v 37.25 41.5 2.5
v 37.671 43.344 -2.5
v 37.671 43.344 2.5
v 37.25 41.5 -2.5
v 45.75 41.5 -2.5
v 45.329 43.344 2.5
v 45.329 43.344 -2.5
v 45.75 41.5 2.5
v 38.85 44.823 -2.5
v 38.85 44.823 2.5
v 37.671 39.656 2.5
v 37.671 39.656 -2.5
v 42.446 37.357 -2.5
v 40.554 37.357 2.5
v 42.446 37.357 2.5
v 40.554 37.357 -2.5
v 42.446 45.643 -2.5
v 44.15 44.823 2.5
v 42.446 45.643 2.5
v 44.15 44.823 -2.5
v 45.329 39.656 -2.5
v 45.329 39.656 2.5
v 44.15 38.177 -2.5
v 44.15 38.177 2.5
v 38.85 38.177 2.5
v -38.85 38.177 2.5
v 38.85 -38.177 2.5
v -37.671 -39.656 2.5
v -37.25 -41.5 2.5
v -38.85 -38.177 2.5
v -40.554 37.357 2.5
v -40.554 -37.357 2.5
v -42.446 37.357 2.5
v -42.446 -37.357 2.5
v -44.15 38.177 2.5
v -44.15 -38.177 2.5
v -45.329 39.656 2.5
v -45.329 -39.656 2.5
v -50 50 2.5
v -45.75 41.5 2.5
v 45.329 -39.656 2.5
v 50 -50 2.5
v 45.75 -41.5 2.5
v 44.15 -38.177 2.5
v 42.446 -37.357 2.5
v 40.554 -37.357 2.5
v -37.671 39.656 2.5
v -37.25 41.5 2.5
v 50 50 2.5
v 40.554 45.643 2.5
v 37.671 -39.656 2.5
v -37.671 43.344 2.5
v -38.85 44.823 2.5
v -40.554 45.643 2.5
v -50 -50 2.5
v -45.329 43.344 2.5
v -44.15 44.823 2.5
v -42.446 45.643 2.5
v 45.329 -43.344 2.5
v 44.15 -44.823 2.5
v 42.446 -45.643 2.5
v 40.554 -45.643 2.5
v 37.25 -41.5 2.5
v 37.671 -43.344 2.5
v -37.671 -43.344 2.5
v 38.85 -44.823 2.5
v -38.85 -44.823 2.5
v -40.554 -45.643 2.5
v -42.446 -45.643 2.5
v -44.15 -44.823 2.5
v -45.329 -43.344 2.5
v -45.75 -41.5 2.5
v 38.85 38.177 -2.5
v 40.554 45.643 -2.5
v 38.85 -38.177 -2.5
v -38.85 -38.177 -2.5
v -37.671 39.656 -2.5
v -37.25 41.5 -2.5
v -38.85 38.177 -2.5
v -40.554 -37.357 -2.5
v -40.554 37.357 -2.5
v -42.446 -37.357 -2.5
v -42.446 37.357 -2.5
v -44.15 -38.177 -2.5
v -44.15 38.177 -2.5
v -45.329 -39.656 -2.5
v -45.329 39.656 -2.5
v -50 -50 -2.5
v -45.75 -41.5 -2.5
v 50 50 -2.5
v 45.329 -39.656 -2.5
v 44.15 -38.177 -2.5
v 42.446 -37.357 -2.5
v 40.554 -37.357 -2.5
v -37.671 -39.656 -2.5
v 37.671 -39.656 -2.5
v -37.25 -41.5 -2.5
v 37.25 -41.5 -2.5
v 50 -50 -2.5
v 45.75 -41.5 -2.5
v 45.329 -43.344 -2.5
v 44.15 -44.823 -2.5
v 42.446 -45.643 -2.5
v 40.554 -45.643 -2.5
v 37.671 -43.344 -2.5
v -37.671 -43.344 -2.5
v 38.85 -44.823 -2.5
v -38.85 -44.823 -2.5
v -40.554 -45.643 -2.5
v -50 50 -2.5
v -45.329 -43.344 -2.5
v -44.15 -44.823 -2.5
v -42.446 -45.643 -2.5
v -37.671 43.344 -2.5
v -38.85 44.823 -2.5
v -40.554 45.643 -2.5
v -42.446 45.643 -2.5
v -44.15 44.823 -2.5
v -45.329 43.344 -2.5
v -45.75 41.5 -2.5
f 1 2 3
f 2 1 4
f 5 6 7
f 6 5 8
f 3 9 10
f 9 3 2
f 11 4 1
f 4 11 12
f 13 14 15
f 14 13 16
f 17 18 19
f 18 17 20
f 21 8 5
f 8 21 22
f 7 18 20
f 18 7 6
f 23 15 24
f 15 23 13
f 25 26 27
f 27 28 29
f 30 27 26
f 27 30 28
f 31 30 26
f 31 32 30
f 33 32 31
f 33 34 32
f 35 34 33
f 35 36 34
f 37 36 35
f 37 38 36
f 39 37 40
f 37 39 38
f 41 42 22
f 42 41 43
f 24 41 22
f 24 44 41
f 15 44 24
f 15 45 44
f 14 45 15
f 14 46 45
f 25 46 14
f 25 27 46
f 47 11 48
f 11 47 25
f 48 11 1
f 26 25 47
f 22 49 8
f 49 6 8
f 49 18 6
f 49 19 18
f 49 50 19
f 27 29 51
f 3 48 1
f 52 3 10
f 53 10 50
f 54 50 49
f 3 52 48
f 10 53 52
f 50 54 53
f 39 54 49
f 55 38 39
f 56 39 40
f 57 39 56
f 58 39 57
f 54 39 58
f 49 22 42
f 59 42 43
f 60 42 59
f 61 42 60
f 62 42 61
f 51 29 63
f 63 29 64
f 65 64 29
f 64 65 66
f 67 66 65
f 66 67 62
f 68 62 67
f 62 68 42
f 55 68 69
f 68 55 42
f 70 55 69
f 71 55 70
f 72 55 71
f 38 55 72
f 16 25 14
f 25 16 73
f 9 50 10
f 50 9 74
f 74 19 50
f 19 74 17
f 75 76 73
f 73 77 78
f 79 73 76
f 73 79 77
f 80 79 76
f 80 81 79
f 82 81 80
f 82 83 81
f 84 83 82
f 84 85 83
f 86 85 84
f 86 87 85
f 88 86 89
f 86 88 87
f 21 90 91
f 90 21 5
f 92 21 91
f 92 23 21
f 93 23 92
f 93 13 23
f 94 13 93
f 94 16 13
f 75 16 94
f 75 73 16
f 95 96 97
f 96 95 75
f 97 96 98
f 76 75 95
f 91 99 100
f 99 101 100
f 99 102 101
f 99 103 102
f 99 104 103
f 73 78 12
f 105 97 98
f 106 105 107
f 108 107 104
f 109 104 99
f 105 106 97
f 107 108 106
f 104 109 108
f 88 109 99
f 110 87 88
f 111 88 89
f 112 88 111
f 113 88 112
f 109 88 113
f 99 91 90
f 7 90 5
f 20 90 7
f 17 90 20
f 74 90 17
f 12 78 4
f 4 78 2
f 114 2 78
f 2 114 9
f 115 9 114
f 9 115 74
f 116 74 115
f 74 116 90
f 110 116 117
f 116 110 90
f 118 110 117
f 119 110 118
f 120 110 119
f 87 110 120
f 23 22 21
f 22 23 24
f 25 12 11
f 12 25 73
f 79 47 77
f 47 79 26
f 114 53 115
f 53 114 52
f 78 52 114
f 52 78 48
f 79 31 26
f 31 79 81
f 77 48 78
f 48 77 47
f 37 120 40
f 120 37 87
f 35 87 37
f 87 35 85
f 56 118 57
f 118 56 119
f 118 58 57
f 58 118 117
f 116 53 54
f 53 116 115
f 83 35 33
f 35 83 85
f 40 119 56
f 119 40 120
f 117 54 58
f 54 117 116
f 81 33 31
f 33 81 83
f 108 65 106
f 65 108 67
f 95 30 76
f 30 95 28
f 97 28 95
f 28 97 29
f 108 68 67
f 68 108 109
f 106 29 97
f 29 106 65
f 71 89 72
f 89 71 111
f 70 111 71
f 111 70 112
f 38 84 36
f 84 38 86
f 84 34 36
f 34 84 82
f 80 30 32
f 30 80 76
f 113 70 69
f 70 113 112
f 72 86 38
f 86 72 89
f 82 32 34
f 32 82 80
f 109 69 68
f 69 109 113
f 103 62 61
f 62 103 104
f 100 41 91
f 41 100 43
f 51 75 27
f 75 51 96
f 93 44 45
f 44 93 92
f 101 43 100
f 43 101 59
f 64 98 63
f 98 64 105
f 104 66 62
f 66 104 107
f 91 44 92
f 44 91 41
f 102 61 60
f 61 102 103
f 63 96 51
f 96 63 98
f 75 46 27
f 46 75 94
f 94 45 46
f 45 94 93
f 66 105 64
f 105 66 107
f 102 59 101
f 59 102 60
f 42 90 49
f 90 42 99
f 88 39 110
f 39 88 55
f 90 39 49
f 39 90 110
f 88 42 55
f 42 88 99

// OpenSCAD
// Generated by SolidPython 1.1.3 on 2023-10-16 18:04:48


difference() {
	cube(center = true, size = [100, 100, 5]);
	union() {
		translate(v = [41.5000000000, 41.5000000000]) {
			cylinder(center = true, h = 5, r = 4.2500000000);
		}
		translate(v = [-41.5000000000, 41.5000000000]) {
			cylinder(center = true, h = 5, r = 4.2500000000);
		}
		translate(v = [-41.5000000000, -41.5000000000]) {
			cylinder(center = true, h = 5, r = 4.2500000000);
		}
		translate(v = [41.5000000000, -41.5000000000]) {
			cylinder(center = true, h = 5, r = 4.2500000000);
		}
	}
}
/***********************************************
*********      SolidPython code:      **********
************************************************
 
import solid
import numbers
import pudb
from solid.utils import *
import viewscad
import subprocess
import os
import os.path as osp
import math
import sys

chamfer_extrude=solid.import_scad("./chamfer_extrude.scad")
chamfer_extrude=chamfer_extrude.chamfer_extrude
r = viewscad.Renderer(width=800, height=800)

def debug(model,f_name,path="/home/ts/code/projects/mfd/designs/debug"):
    solid.scad_render_to_file(model,osp.join(path,f_name)+".scad")
#generate position list of wells using offset from center
wells_pos_from_center_4 = lambda offset: [[-offset,offset],
                                        [offset, offset],
                                        [-offset, -offset],
                                        [offset, -offset]]
#wells_pos_from_center_2 = lambda offset: [[0,offset],
#                                        [0, -offset]]
wells_pos_from_center_2 = lambda offset: [[offset,0],
                                        [-offset,0]]

def make_well(dims,shape=None,height=None,dxf=False):
    def circle_cylinder():
        if dxf or (height is None):
            well = solid.circle(r=dims, segments=64)
        else:
            well = solid.cylinder(r=dims, h=height, segments=64, center = True)
        return well
    if dims is None:
        sys.exit("radius needs to be a number")
    if isinstance(dims, numbers.Number):
        well =circle_cylinder()
    elif len(dims)==1:
        if isinstance(dims[1], numbers.Number):
            well =circle_cylinder()
        else:
            sys.exit("radius needs to be a number")
    elif len(dims)==2:
        well = solid.square(dims,center = True)
    elif len(dims)==3:
        well = solid.cube(dims, center = True)
    return well

def wells_top_bottom(center_gap,device_dims=None,shape=None,height=None, positions = None, dxf = False,well_shape=None):
    if well_shape == None:
        well_shape = make_well(device_dims,shape=shape,height=height,dxf=dxf)
    wells = []
    if positions is None:
        offset = radius+radius/2.0
        positions = wells_pos_from_center_2(offset)
    if dxf or (height is None):
        height = 0
    for position in positions:
        if dxf:
            wells.append(solid.translate([position[0],position[1]])(well_shape))
        else:
            wells.append(solid.translate([position[0],position[1],height/2.0])(well_shape))
    return  union()(*wells)

#place wells in four corners 
def four_corner(radius,height=None, positions = None, dxf = False):
    #if well pos not specified set
    #to equally spaced by half radius
    if positions is None:
        offset = radius+radius/2.0
        positions = wells_pos_from_center_4(offset)
    if dxf or (height is None):
        height = 0
    #make wells at positions with specified radius and height
    wells = []
    for position in positions:
        #make circle if making dxf
        if dxf:
            well_shape = solid.circle(r=radius, segments=64)
            well_shape = solid.translate([position[0],position[1]])(well_shape)
        #if stl make cylinder
        else:
            well_shape = solid.cylinder(r=radius, h=height, segments=64, center = True)
            well_shape = solid.translate([position[0],position[1],height/2.0])(well_shape)
        wells.append(well_shape)
    return  union()(*wells)

#generate channels 
def make_channels(length,width,height=0,num_chans=1,max_chans=None,spacing=None, dxf = False,
                  rotate_channels=False):
    if dxf or (height is None):
        height = 0
    #if channel gap not defined, is equal to
    if spacing is None: spacing = width
    #calculate number of channels if fitting max num within given width
    if not max_chans is None:
        import math
        num_chans = math.floor((max_chans-spacing)/(width+spacing))
    #get total width of channel section  
    total_width = (width*num_chans)+(spacing*(num_chans-1))

    #make template channel
    #if rotate_channels: width, length = length, width
    if dxf:
        channel_t = solid.square([length,width],center = True)
    else:
        channel_t = solid.cube([length,width,height], center = True)

    #if number channels is even, offset the first channel to center its gap
    if num_chans % 2 == 0: centering = -(width/2.0+spacing/2.0)
    else: centering = 0
    #move template channel up to align bottom at z = 0 
    #and offset center if necessary
    if dxf:
        channel_t = solid.translate([0,centering])(channel_t)
    else:
        channel_t = solid.translate([0,centering,height/2.0])(channel_t)

    #if rotate_channels: length,width = width,length
    #start making the channels
    channels = []
    for i in range(num_chans):
        #if i=0 there is no translation
        #if i=1, we make the first channel adjacent to second
        direction = i

        #if i>=1, we add channels alternating left and right
        if i >= 1:
            direction = -(i/2.0)
            if i % 2 == 1: direction = (-direction)+0.5
                
        #make channel at right position and add it to channel list
        translation_coords = [0,direction*(width+spacing)]
        #if rotate_channels: translation_coords = [direction*(width+spacing),0]
        if dxf:
            channel = solid.translate(translation_coords)(channel_t)
        else:
            channel = solid.translate([*translation_coords,0])(channel_t)
        channels.append(channel)
    
    #group all channels as one object
    channels = union()(*channels)
    #compute the x,y,z dimensions in order to pass as arguments 
    #for construction of other parts of device (such as the chambers)
    measurements = {'x':(length/2.0,-length/2.0),
                    'y':(total_width/2.0,-total_width/2.0)}
    if not dxf:
        measurements['z'] = (height,0)
    if rotate_channels:
        channels = solid.rotate(90)(channels)
        measurements['x'],measurements['y']=measurements['y'],measurements['x']
    return channels,measurements

def make_chambers(msrs,height=None,extra=0,len_until=None,width=None, dxf = False):
    #computes x,y,z length
    total = lambda x : abs(x[0]) + abs(x[1])
    
    #if specific height if specified
    #otherwise use same height as channels
    if dxf:
        pass
    elif not height is None:
        msrs['z'] = (height,0)
    else:
        msrs['z'] = (0,0)
        
    #make copy of measurements from channels to modify chamber dimensions 
    #and add length to chambers as specified
    chamber_dims = msrs.copy()
    #calculate length of chamber to reach specified offset
    if not len_until is None:
        chamber_len = len_until-(msrs['x'][0])
    #or add specified length to channel length (if not specified, adds 0)
    else:
        chamber_len = msrs['x'][0]+extra
    #set the chamber length based 
    chamber_dims['x'] = (chamber_len/2.0,-(chamber_len/2.0))
    #compute final dimensions of chamber
    if not width is None:
        chamber_dims['y'] = (width/2.0,-width/2.0)
    chamber_dims = [total(size) for size in chamber_dims.values()]
        
    #calculate chamber translation offset to place adjacent to channels
    chamber_trslt = msrs['x'][0]+(chamber_len/2.0)
    #compute chamber translation coordinates to align with channels
    #x = 1 moves chamber above channels
    #x = -1 moves chamber below channels
    if dxf:
        trslt = lambda x : [x*(chamber_trslt),0]
    else:
        trslt = lambda x : [x*(chamber_trslt),0,msrs['z'][0]/2.0]
    
    #function to make chamber at top or at bottom 
    if dxf:
        move = lambda x : solid.translate(trslt(x))(solid.square(chamber_dims, center = True) )
    else:
        move = lambda x : solid.translate(trslt(x))(solid.cube(chamber_dims,center = True))
    #make top and bottom chambers and return them as grouped
    top = move(1)
    bottom = move(-1)
    #chambers=solid.rotate(90)(solid.union()(top,bottom))
    chambers=(solid.union()(top,bottom))

    return chambers

#create alignment features 
def alignment_features(unit,dims,grid_size, mask_size = None, alignment = "hollow", units_from_center = (2.5,2.5), corner_len=None):
    width = grid_size[0]*dims[0]
    length = grid_size[1]*dims[1]
    if mask_size is None and corner_len is None:
        corner_len = (dims[0] + dims[1]) /2 / 8
    corner = lambda thickness_div : solid.union()( solid.square([corner_len,corner_len/thickness_div],center=False), solid.square([corner_len/thickness_div,corner_len],center=False) )
    
    def make_full(thickness_div):
        thickness = corner_len/thickness_div
        tr = solid.translate([0, 0, 0 ])(solid.rotate(180)(corner(thickness_div)))
        tr = solid.translate([thickness/2,thickness/2,0])(tr)
        bl = solid.translate([0, 0, 0 ])(solid.rotate(0)(corner(thickness_div)))
        bl = solid.translate([-thickness/2,-thickness/2,0])(bl)
        return solid.union()(tr,bl)
    
    def make_hollow(thickness_div):
        thickness = corner_len/(thickness_div/2)
        inner = make_full(thickness_div)
        outer = make_full(thickness_div/2)
        hollow = outer - inner 
        return hollow
    
    center = (width /2 , length/2)
    mask_pos = lambda x,y : (center[0] + x*(float(units_from_center[0])*dims[0]), center[1] + y*(float(units_from_center[1])*dims[1]))
    positions = []
    positions.append(mask_pos(1,0))
    positions.append(mask_pos(0,1))
    positions.append(mask_pos(-1,0))
    positions.append(mask_pos(0,-1))
    make_mask = lambda mtype : make_hollow(8) if mtype == "hollow" else make_full(8)
    masks = [ solid.translate([*position,0])(make_mask(alignment)) for position in positions]
    
    solid.scad_render_to_file(solid.union()(*masks),"./designs/open_chamber/masks.scad")
    #return unit - solid.union()(*masks)
    return solid.union()(*masks,unit)

def create_outline(thickness, array, dims, grid_size,):
    width = grid_size[0]*dims[0] + thickness *2
    length = grid_size[1]*dims[1] + thickness *2
    outer = solid.translate([-thickness, -thickness,0])(solid.square([width, length]))
    return outer-array

def create_wall(wall_thickness, outline_thickness, dims, grid_size, wall_height = 2000, dxf = False):
    inner_width = grid_size[0]*dims[0] + outline_thickness *2
    inner_length = grid_size[1]*dims[1] + outline_thickness *2
    outer_width = inner_width + wall_thickness * 2
    outer_length = inner_length + wall_thickness * 2
    outer_pos_x = -outline_thickness-wall_thickness
    outer_pos_y = -outline_thickness-wall_thickness
    inner_pos_x = -outline_thickness
    inner_pos_y = -outline_thickness
    if dxf:
        inner_wall = solid.translate([inner_pos_x,
                                      inner_pos_y,
                                      0])(solid.square([inner_width, inner_length]))
        outer_wall = solid.translate([outer_pos_x,
                                      outer_pos_y,
                                      0])(solid.square([outer_width, outer_length]))

        return outer_wall-inner_wall
    else:
        inner_wall = solid.translate([inner_pos_x,
                                      inner_pos_y,
                                      0])(solid.cube([inner_width, inner_length,wall_height]))
        outer_wall = solid.translate([outer_pos_x,
                                      outer_pos_y,
                                      0])(solid.cube([outer_width, outer_length,wall_height]))

        return outer_wall-inner_wall, {'wall_height': wall_height,
                                       'wall_thickness': wall_thickness,
                                       'inner_width':inner_width,
                                       'inner_length': inner_length,
                                       'outer_width': outer_width,
                                       'outer_length': outer_length,
                                       'outer_pos_x' : outer_pos_x,
                                       'outer_pos_y' : outer_pos_y,
                                       'inner_pos_x' : inner_pos_x,
                                       'inner_pos_y' : inner_pos_y}

def create_thicker_wall(wall_thickness, outer_wall_offset, wall_dims, dims, grid_size, height_start = .2, height_end=2, dxf = False):
    addon_wall,thicker_wall_dims = create_wall(wall_thickness, outer_wall_offset, dims, grid_size, wall_height=height_end-height_start, dxf = False)
    addon_wall = solid.translate([0,0,height_start])(addon_wall)

    thicker_wall_dims['wall_height'] = height_end
    thicker_wall_dims['wall_thickness'] = wall_dims['wall_thickness'] + wall_thickness
    return addon_wall, thicker_wall_dims
 
def add_lock_to_wall(wall,wall_dims,y_offset = 0,cut_ratio=0.7,L_length=3, gap_ratio=0.05, axis="x",width_ratio=1/2):
    # Makes L shape
    def make_L(max_length,length_thickness,max_width,width_thickness,height,y_offset):
        length = solid.cube([max_length,length_thickness,height])
        width = solid.cube([width_thickness,max_width,height])
        width = solid.translate([max_length-(width_thickness),0,0])(width)
        L = solid.union()(width,length)
        debug(L,"L")
        if axis == "x":
            L = solid.rotate(-90)(L)
            L = solid.translate([0,max_length,0])(L)
        else:
            L = solid.rotate(-180)(L)
            L = solid.translate([max_length,max_width,0])(L)
        return solid.translate([0,0,y_offset])(L)
    
    lock_length = L_length
    lock_width = wall_dims['wall_thickness']*width_ratio
    lock_length_thickness = lock_width/2
    lock_width_thickness = lock_width/2
    L_lock = make_L(lock_length,lock_length_thickness,lock_width,lock_width_thickness, wall_dims['wall_height']-y_offset, y_offset)
    
    margin_space = lock_length - lock_length*(1-gap_ratio)
    key_length = lock_length-margin_space
    key_length_thickness = lock_length_thickness-(margin_space*2)
    key_width = lock_width-(margin_space*2)
    key_width_thickness = lock_width_thickness-(margin_space*2)
    L_key = make_L(key_length,key_length_thickness,key_width,key_width_thickness, wall_dims['wall_height']-y_offset, y_offset)
    L_key = solid.translate([margin_space,margin_space,0])(L_key)
    L = solid.union()(L_lock,L_key)
    debug(L,"L")
    
    #Make cube to be used as negative to split frame in a half
    #Can choose if making left or right negative, specify ratio of split
    def make_negative(right,cut_ratio):
        if axis == "x":
            if right:
                length = wall_dims['outer_length']*(1-cut_ratio)
                pos_x = wall_dims['outer_pos_x']+(wall_dims['outer_length']*cut_ratio)
            else:
                length = wall_dims['outer_length']*(cut_ratio)
                pos_x = wall_dims['outer_pos_x'] 
            negative = solid.cube([wall_dims['outer_width'],length, wall_dims['wall_height']])
            negative = solid.translate([wall_dims['outer_pos_y'],pos_x,0])(negative)
        else:
            if right:
                length = wall_dims['outer_width']*(1-cut_ratio)
                pos_x = wall_dims['outer_pos_y']+(wall_dims['outer_width']*cut_ratio)
            else:
                length = wall_dims['outer_width']*(cut_ratio)
                pos_x = wall_dims['outer_pos_y'] 
            negative = solid.cube([length,wall_dims['outer_length'], wall_dims['wall_height']])
            negative = solid.translate([pos_x,wall_dims['outer_pos_x'],0])(negative)
        return negative, pos_x, length 
                      
    #Make negatives
    negative_right, right_half_pos_x, right_half_length = make_negative(True,cut_ratio)
    negative_left, left_half_pos_x, right_half_length = make_negative(False,cut_ratio)
    #Make halves
    left_half = solid.difference()(wall,negative_right)
    right_half = solid.difference()(wall,negative_left)
    def place_L(L, L_length,L_width):
        #Place L on top wall       
        offset_to_center = (wall_dims['wall_thickness']-L_width)/2
        if axis == "x":
            y_pos_top = (wall_dims['outer_pos_y'] +
                    wall_dims['outer_width'] - 
                    L_width - offset_to_center)
            top_L = solid.translate([y_pos_top,
                                     right_half_pos_x-(L_length),
                                     0])(L)
            #Place L on bottom wall       
            y_pos_bottom = wall_dims['outer_pos_y']+offset_to_center
            bottom_L = solid.translate([y_pos_bottom,
                                        right_half_pos_x-L_length,
                                        0])(L)
        else:
            y_pos_top = (wall_dims['outer_pos_x'] +
                    wall_dims['outer_length'] -
                    (L_width+offset_to_center))
            top_L = solid.translate([right_half_pos_x-L_length,
                                     y_pos_top,
                                     0])(L)
            #Place L on bottom wall       
            y_pos_bottom = wall_dims['outer_pos_y']+offset_to_center
            bottom_L = solid.translate([right_half_pos_x-L_length,
                                        y_pos_bottom,
                                        0])(L)
        return bottom_L, top_L
    #Make complimentary L pieces through union and differences
    #Make Lock
    bottom_L_lock, top_L_lock = place_L(L_lock,L_length,lock_width)
    left_half = solid.difference()(left_half,bottom_L_lock)
    left_half = solid.difference()(left_half,top_L_lock)
    #Make Key
    bottom_L_key, top_L_key = place_L(L_key,L_length,lock_width)
    right_half = solid.union()(right_half,bottom_L_key)
    right_half = solid.union()(right_half,top_L_key)
    return left_half, right_half


#build a row x col grid of containment units
def make_unit_array(unit,dims,grid_size, dxf = False, alignment = None, mask_size = None,
                    units_from_center = None,alignment_offset=None, alignment_mark_size=1):
    units = []
    for col in range(grid_size[1]):
        for row in range(grid_size[0]):
            if dxf:
                units.append(solid.translate([row*dims[0],col*dims[1]])(unit))
            else:
                units.append(solid.translate([row*dims[0],col*dims[1],dims[2]/2.0])(unit))
    array = solid.union()(*units)
    if (not alignment is None) and dxf:
        if not alignment_offset is None:
            array = solid.translate([alignment_offset[0],alignment_offset[1]])(array)
        array = alignment_features(array,dims, grid_size, alignment = alignment, mask_size = None, units_from_center = units_from_center,corner_len=alignment_mark_size)
        if not alignment_offset is None:
            array = solid.translate([-alignment_offset[0],-alignment_offset[1]])(array)
    return array


def make_taylor(wells_pos = wells_pos_from_center_4(2.25), well_rad = 1.5 ,
                well_height = 2, chan_w = 0.01, chan_l = 1, chan_h = 0.010 ,
                chan_gap = 0.040, max_chans = None,num_chans=100, chamber_height  = 0.100,
                columns = 1, rows = 1, chamber_len_until=2.25, add_channels = True, add_wells = True, 
                add_chambers = True, save_path = "./", alignment = None, units_from_center = 2,
                mask_size = None, render_stl = False, outline_thickness = 0.050, dxf = True,
                wall_height = 15, wall_thickness = 0.95, casing_x=9, casing_y=9, casing_z=0,rotate_units=0):

    dims = [casing_x, casing_y, casing_z]
    wells = four_corner(well_rad,well_height, dxf = dxf, positions = wells_pos)
    debug(wells,"wells")
    channels, msrs = make_channels(chan_l,chan_w,chan_h,dxf=dxf, spacing = chan_gap, max_chans=max_chans,num_chans=num_chans)
    debug(channels,"channels")
    chambers = make_chambers(msrs,dxf = dxf, height=chamber_height,len_until=chamber_len_until)
    debug(chambers,"chambers")

    #add together and render
    device_parts = []
    if add_channels:
        device_parts.append(channels)
    if add_wells:
        device_parts.append(wells)
    if add_chambers:
        device_parts.append(chambers)
    device=union()(*device_parts)
    device = rotate(rotate_units)(device)

    device=solid.translate([dims[0]/2.0,dims[1]/2.0,0])(device)
    channels = rotate(rotate_units)(channels)
    channels=solid.translate([dims[0]/2,dims[1]/2,0])(channels)
    chambers_wells = union()(wells,chambers)
    chambers_wells = rotate(rotate_units)(chambers_wells)
    chambers_wells=solid.translate([dims[0]/2,dims[1]/2,0])(chambers_wells)

    file_name = str(rows)+'x'+str(columns)+'_units_'
    grid_size = [rows,columns]

    if alignment:
        alignment="full"
    device = make_unit_array(device,dims,grid_size, dxf=dxf, alignment = alignment,
                                 units_from_center = units_from_center)
    channels = make_unit_array(channels,dims,grid_size, dxf=dxf, alignment = alignment,
                                 units_from_center = units_from_center)
    if alignment=="full":
        alignment="hollow"

    chambers_wells = make_unit_array(chambers_wells,dims,grid_size, dxf=dxf, alignment = alignment,
                                 units_from_center =units_from_center)

    def save_model(model,prefix):
        model_fname = os.path.abspath(save_path+prefix+"_"+file_name+".scad")
        solid.scad_render_to_file(model,model_fname)
        return model_fname

    wells_fname = save_model(wells,"wells")
    channels_fname = save_model(channels,"channels")
    device_fname = save_model(device,"device")
    chambers_wells_fname = save_model(chambers_wells,"chambers_wells")
    return (chambers_wells,chambers_wells_fname), (channels,channels_fname), (device,device_fname)

def make_device(design='open',rows=8,columns=6,wells_pos = 4.5,well_offset=3.2, well_rad=3.2,well_height=0.1,
                chan_l=1,chan_w=0.01,chan_h=0.01,chan_gap=0.015,num_chans=101,dxf=True,save_path="./designs/open_chamber/",
                casing_x=9.0,casing_y=18.0,casing_z=0,rotate_units=90,units_from_center=(3,1),chamber_len_until=4.5,
                chamber_width=None,alignment=True, add_wells=True, add_channels=True,add_chambers=True,well_shape=None):

    dims = [casing_x, casing_y, casing_z]
    if design == "open":
        wells_pos=wells_pos_from_center_2(wells_pos)
        wells = wells_top_bottom(well_offset*2,device_dims=well_rad,height=well_height, dxf = dxf, positions = wells_pos,well_shape=well_shape)
    elif design == "closed":
        wells_pos=wells_pos_from_center_4(wells_pos)
        debug(wells,"wells")
        wells = four_corner(well_offset,well_height,device_dims=well_rad, dxf = dxf, positions = wells_pos)
    else:
        print(design+" is not a valid design.\n Choose valid design: 'open' or 'closed'")
        exit()
    wells = rotate(rotate_units)(wells)
    wells=solid.translate([dims[0]/2,dims[1]/2,0])(wells)
    debug(wells,"wells")

    channels, msrs = make_channels(chan_l,chan_w,chan_h,dxf=dxf, spacing = chan_gap, num_chans=num_chans,rotate_channels=False)
    channels = rotate(rotate_units)(channels)
    channels=solid.translate([dims[0]/2,dims[1]/2,0])(channels)

    chambers=make_chambers(msrs,height=None,extra=0,len_until=chamber_len_until, width=chamber_width,dxf = dxf)
    chambers = rotate(rotate_units)(chambers)
    chambers=solid.translate([dims[0]/2,dims[1]/2,0])(chambers)

    device_parts = []
    if add_channels:
        device_parts.append(channels)
    if add_wells:
        device_parts.append(wells)
    if add_chambers:
        device_parts.append(chambers)
    device = union()(*device_parts)
    #device = rotate(rotate_units)(device)
    #device=solid.translate([dims[0]/2.0,dims[1]/2.0,0])(device)

    chambers_wells = []
    if add_chambers:
        chambers_wells.append(chambers)
    if add_wells:
        chambers_wells.append(wells)
    chambers_wells = union()(*chambers_wells)
    #chambers_wells = union()(wells,chambers)
    #chambers_wells = rotate(rotate_units)(chambers_wells)
    #chambers_wells=solid.translate([dims[0]/2,dims[1]/2,0])(chambers_wells)

    file_name = str(rows)+'x'+str(columns)+'_units_'

    grid_size = [rows,columns]
    if alignment:
        alignment="full"
    device = make_unit_array(device,dims,grid_size, dxf=dxf, alignment = alignment,
                                 units_from_center = units_from_center)
    channels = make_unit_array(channels,dims,grid_size, dxf=dxf, alignment = alignment,
                                 units_from_center = units_from_center)
    if alignment=="full":
        alignment="hollow"

    chambers_wells = make_unit_array(chambers_wells,dims,grid_size, dxf=dxf, alignment = alignment,
                                 units_from_center =units_from_center)

    def save_model(model,prefix):
        model_fname = os.path.abspath(save_path+prefix+"_"+file_name+".scad")
        solid.scad_render_to_file(model,model_fname)
        return model_fname

    wells_fname = save_model(wells,"wells")
    channels_fname = save_model(channels,"channels")
    device_fname = save_model(device,"device")
    chambers_wells_fname = save_model(chambers_wells,"chambers_wells")
    return (chambers_wells,chambers_wells_fname), (channels,channels_fname), (device,device_fname)


def make_open_chamber(rows=8,columns=6,wells_pos = wells_pos_from_center_2(4.5), well_rad=3.2,well_height=0.1,
                      chan_l=1,chan_w=0.01,chan_h=0.01,chan_gap=0.015,num_chans=101,dxf=True,save_path="./designs/open_chamber/",
                      casing_x=9.0,casing_y=18.0,casing_z=0,rotate_units=90,units_from_center=(3,1),chamber_len_until=4.5,
                      chamber_width=None,alignment=True, add_wells=True, add_channels=True,add_chambers=True,well_shape=None):

    dims = [casing_x, casing_y, casing_z]
    wells = wells_top_bottom(well_rad,height=well_height, dxf = dxf, positions = wells_pos, well_shape=well_shape)
    channels, msrs = make_channels(chan_l,chan_w,chan_h,dxf=dxf, spacing = chan_gap, num_chans=num_chans,rotate_channels=False)
    chambers=make_chambers(msrs,height=None,extra=0,len_until=chamber_len_until, width=chamber_width,dxf = dxf)
    debug(chambers,"chambers")
    device_parts = []
    if add_channels:
        device_parts.append(channels)
    if add_wells:
        device_parts.append(wells)
    if add_chambers:
        device_parts.append(chambers)
    device = union()(*device_parts)
    device = rotate(rotate_units)(device)
    device=solid.translate([dims[0]/2.0,dims[1]/2.0,0])(device)
    channels = rotate(rotate_units)(channels)
    channels=solid.translate([dims[0]/2,dims[1]/2,0])(channels)
    chambers_wells = union()(wells,chambers)
    chambers_wells = rotate(rotate_units)(chambers_wells)
    chambers_wells=solid.translate([dims[0]/2,dims[1]/2,0])(chambers_wells)

    file_name = str(rows)+'x'+str(columns)+'_units_'

    grid_size = [rows,columns]
    if alignment:
        alignment="full"
    device = make_unit_array(device,dims,grid_size, dxf=dxf, alignment = alignment,
                                 units_from_center = units_from_center)
    channels = make_unit_array(channels,dims,grid_size, dxf=dxf, alignment = alignment,
                                 units_from_center = units_from_center)
    if alignment=="full":
        alignment="hollow"

    chambers_wells = make_unit_array(chambers_wells,dims,grid_size, dxf=dxf, alignment = alignment,
                                 units_from_center =units_from_center)

    def save_model(model,prefix):
        model_fname = os.path.abspath(save_path+prefix+"_"+file_name+".scad")
        solid.scad_render_to_file(model,model_fname)
        return model_fname

    wells_fname = save_model(wells,"wells")
    channels_fname = save_model(channels,"channels")
    device_fname = save_model(device,"device")
    chambers_wells_fname = save_model(chambers_wells,"chambers_wells")
    return (chambers_wells,chambers_wells_fname), (channels,channels_fname), (device,device_fname)

def to_dxf(scad_path):
    dxf_path = scad_path.replace(".scad",".dxf")
    subprocess.call(["openscad", "-o", dxf_path, scad_path])
    import ezdxf
    temp_dxf = ezdxf.readfile(dxf_path)
    temp_dxf.saveas(dxf_path)

#def make_walls(diameter,thickness,grid_size,dims,height=20,segments=256,make_inner=True):
#    wafer_wall_out = solid.cylinder(r=diameter/2,h=height, segments=segments)
#    wafer_wall_in = solid.cylinder(r=(diameter/2-thickness),h=height, segments=segments)
#    wafer_wall = solid.difference()(wafer_wall_out,wafer_wall_in)
#    wafer_wall = solid.translate([grid_size[1]*dims[1]/2.0,grid_size[0]*dims[0]/2.0])(wafer_wall)
#
#    vertical_wall_length = grid_size[1]*dims[1]
#    horizontal_wall_length = grid_size[0]*dims[0]
#    vertical_wall = solid.cube([vertical_wall_length,thickness,height],center = True)
#    vertical_wall = solid.translate([vertical_wall_length/2,0,height/2])(vertical_wall)
#    horizontal_wall = solid.cube([thickness,horizontal_wall_length,height],center = True)
#    horizontal_wall = solid.translate([0,vertical_wall_length/2,height/2])(horizontal_wall)
#    walls = []
#    walls.append(horizontal_wall)
#    walls.append(vertical_wall)
#    for col in range(grid_size[1]):
#        if col == grid_size[1]-1: 
#            walls.append(solid.translate([0,(col+1)*dims[1]])(vertical_wall))
#        elif col > 0 and col < grid_size[1]-1 and make_inner==True:
#            walls.append(solid.translate([0,(col+1)*dims[1]])(vertical_wall))
#    for row in range(grid_size[0]):
#        if row == grid_size[0]-1: 
#            walls.append(solid.translate([(row+1)*dims[0],0])(horizontal_wall))
#        elif row > 0 and row < grid_size[0]-1 and make_inner==True:
#            walls.append(solid.translate([(row+1)*dims[0],0])(horizontal_wall))
#    walls = union()(*walls)
#    wafer_walls = union()(walls,wafer_wall)
#    return walls,wafer_wall,wafer_walls

def make_walls(diameter,thickness,grid_size,dims,height=20,segments=256,make_inner=True,padx=0,pady=0):
    wafer_wall_out = solid.cylinder(r=diameter/2,h=height, segments=segments)
    wafer_wall_in = solid.cylinder(r=(diameter/2-thickness),h=height, segments=segments)
    wafer_wall = solid.difference()(wafer_wall_out,wafer_wall_in)
    wafer_wall = solid.translate([grid_size[1]*dims[1]/2.0,grid_size[0]*dims[0]/2.0])(wafer_wall)

    vertical_wall_length = grid_size[0]*dims[0]+padx
    horizontal_wall_length = grid_size[1]*dims[1]+pady
    vertical_wall = solid.cube([vertical_wall_length,thickness,height],center = True)
    vertical_wall = solid.translate([vertical_wall_length/2-pady/2,-padx/2,height/2])(vertical_wall)
    horizontal_wall = solid.cube([thickness,horizontal_wall_length,height],center = True)
    horizontal_wall = solid.translate([-pady/2,horizontal_wall_length/2-padx/2,height/2])(horizontal_wall)
    walls = []
    walls.append(horizontal_wall)
    walls.append(vertical_wall)
    for col in range(grid_size[1]):
        if col == grid_size[1]-1: 
            walls.append(solid.translate([0,(col+1)*dims[1]+pady])(vertical_wall))
        elif col > 0 and col < grid_size[1]-1 and make_inner==True:
            walls.append(solid.translate([0,(col+1)*dims[1]])(vertical_wall))
    for row in range(grid_size[0]):
        if row == grid_size[0]-1: 
            walls.append(solid.translate([(row+1)*dims[0]+padx,0])(horizontal_wall))
        elif row > 0 and row < grid_size[0]-1 and make_inner==True:
            walls.append(solid.translate([(row+1)*dims[0],0])(horizontal_wall))
    walls = union()(*walls)
    wafer_walls = union()(walls,wafer_wall)
    return walls,wafer_wall,wafer_walls

def save_model(model,base_path,base_name,dxf=True):
    if not os.path.exists(base_path):
        os.makedirs(base_path)
    dxf_path=osp.join(base_path,base_name+".scad")
    solid.scad_render_to_file(model,osp.join(dxf_path))
    if dxf:
        to_dxf(dxf_path)

def make_wafer(diameter,flat_len,thickness):
    wafer = solid.cylinder(r1=diameter/2,r2=diameter/2,h=thickness,segments=512,)()
    x_start_flat=(flat_len/2)
    y_start_flat = math.sqrt(((diameter/2)**2) - (x_start_flat**2) )
    height_delete_flat=diameter/2-y_start_flat
    flat_delete = solid.cube([flat_len,height_delete_flat,thickness],center=False)()
    flat_delete = solid.translate([-flat_len/2,y_start_flat,0])(flat_delete)
    wafer = solid.difference()(wafer,flat_delete)
    wafer = solid.rotate(90)(wafer)
    return wafer

def add_wafer_to_mask(wafer_size,flat_len,mask,grid_size,dims,wafer_line_thickness=0.1,outer_mask_thickness=5,alignment_offset=None):
    def make_wafer_mask(wafer_size,flat_len):
        wafer_mask = make_wafer(wafer_size,flat_len,1)
        wafer_mask = solid.projection()(wafer_mask)
        wafer_mask = solid.translate([grid_size[0]*dims[0]/2.0,grid_size[1]*dims[1]/2.0])(wafer_mask)
        if not alignment_offset is None:
            wafer_mask = solid.translate([-alignment_offset[0],-alignment_offset[1]])(wafer_mask)
        return wafer_mask

    inner_wafer_line_mask = make_wafer_mask(wafer_size-wafer_line_thickness/2,flat_len)
    outer_wafer_line_mask = make_wafer_mask(wafer_size+wafer_line_thickness/2,flat_len)
    outer_wafer_mask = make_wafer_mask(wafer_size+outer_mask_thickness,flat_len)
    outer_wafer_mask = solid.difference()(outer_wafer_mask,outer_wafer_line_mask)
    wafer_mask = solid.union()(outer_wafer_mask,inner_wafer_line_mask)

    return solid.difference()(wafer_mask,mask)

def make_posts(post_shape,post_height):
    posts = solid.linear_extrude(height=post_height)(post_shape)
    return posts

def make_wafer_empty(diameter,flat_len,thickness,margin,notch_len=20,notch_height=5,oversize=1.01):
    diameter*=oversize
    flat_len*=oversize
    wafer = make_wafer(diameter,flat_len,thickness)
    holder = solid.cylinder(r1=diameter/2+margin,r2=diameter/2+margin,h=thickness,segments=512)()
    holder = solid.difference()(holder,wafer)

    x_start_flat=(flat_len/2)
    y_start_flat = math.sqrt(((diameter/2)**2) - (x_start_flat**2) )
    height_delete_flat=diameter/2-y_start_flat
    notch = solid.cube([notch_len,notch_height,thickness],center=False)()
    notch = solid.translate([-notch_len/2,y_start_flat,0])(notch)
    notch = solid.rotate(90)(notch)
    return solid.difference()(holder,notch)

def wafer_print_calibration(diameter,thickness,height,z_offset):
    circles = []
    radii = []
    radii.append(diameter/2.0*0.8)
    radii.append(diameter/2.0*0.6)
    radii.append(diameter/2.0*0.4)
    radii.append(diameter/2.0*0.2)
    for radius in radii:
        inner = solid.cylinder(r1=radius-(thickness/2.0),r2=radius-(thickness/2.0),h=thickness,segments=512,)()
        outer = solid.cylinder(r1=radius+(thickness/2.0),r2=radius+(thickness/2.0),h=thickness,segments=512,)()
        diff = solid.difference()(outer,inner)
        circles.append(diff)
    circles = solid.union()(*circles)
    circles = solid.translate([0,0,z_offset])(circles)
    return circles

def make_rack(wells,dims,grid_size,alignment_offset,rack_x,rack_y,rack_thickness,bolt_width,add_bolts=True):

    #get X and Y dimensions of gride of pipette tips
    X_len = dims[0]*grid_size[0]
    Y_len = dims[1]*grid_size[1]
    #make rack
    rack = solid.cube([rack_x,rack_y,rack_thickness],center=True)

    if add_bolts:
    #add bolt holes
        bolt_hole=solid.cylinder(r=bolt_width/2,h=rack_thickness,center=True)()
        bolt_holes = []
        bolt_holes.append(solid.translate([rack_x/2-1.5*bolt_width,rack_y/2-1.5*bolt_width])(bolt_hole))
        bolt_holes.append(solid.translate([-rack_x/2+1.5*bolt_width,rack_y/2-1.5*bolt_width])(bolt_hole))
        bolt_holes.append(solid.translate([-rack_x/2+1.5*bolt_width,-rack_y/2+1.5*bolt_width])(bolt_hole))
        bolt_holes.append(solid.translate([rack_x/2-1.5*bolt_width,-rack_y/2+1.5*bolt_width])(bolt_hole))
        bolt_holes = solid.union()(*bolt_holes)
        rack=solid.difference()(rack,bolt_holes)
    rack_support = rack

    #center rack with pipette holes
    rack = solid.translate([0,0,rack_thickness/2])(rack)
    rack = solid.translate([X_len/2,Y_len/2])(rack)
    rack = solid.translate([-alignment_offset[0],-alignment_offset[1]])(rack)
    wells = solid.linear_extrude(height=rack_thickness)(wells)
    rack = solid.difference()(rack,wells)
    return rack, rack_support

def make_pillar(wells,dims,grid_size,alignment_offset,rack_x,rack_y,pillar_height,rack_thickness,bolt_width,add_bolts=True,taper_angle=1,bolt_position_corner=1.5):

    #get X and Y dimensions of gride of pipette tips
    X_len = dims[0]*grid_size[0]
    Y_len = dims[1]*grid_size[1]
    #make rack
    rack = solid.cube([rack_x,rack_y,rack_thickness],center=True)
    
    if add_bolts:
    #add bolt holes
        bolt_hole=solid.cylinder(r=bolt_width/2,h=rack_thickness,center=True)()
        bolt_holes = []
        bolt_holes.append(solid.translate([rack_x/2-bolt_position_corner*bolt_width,rack_y/2-bolt_position_corner*bolt_width])(bolt_hole))
        bolt_holes.append(solid.translate([-rack_x/2+bolt_position_corner*bolt_width,rack_y/2-bolt_position_corner*bolt_width])(bolt_hole))
        bolt_holes.append(solid.translate([-rack_x/2+bolt_position_corner*bolt_width,-rack_y/2+bolt_position_corner*bolt_width])(bolt_hole))
        bolt_holes.append(solid.translate([rack_x/2-bolt_position_corner*bolt_width,-rack_y/2+bolt_position_corner*bolt_width])(bolt_hole))
        bolt_holes = solid.union()(*bolt_holes)
        rack=solid.difference()(rack,bolt_holes)
    rack_support = rack

    #center rack with pipette holes
    #rack = solid.translate([0,0,-rack_thickness])(rack)
    rack = solid.translate([X_len/2,Y_len/2])(rack)
    rack = solid.translate([-alignment_offset[0],-alignment_offset[1]])(rack)
    if not taper_angle == 0:
        wells=chamfer_extrude(pillar_height,taper_angle,segments=20)(wells)
    else:
        wells = solid.linear_extrude(height=pillar_height)(wells)
    rack = solid.union()(rack,wells)
    return rack, rack_support

def deg_taper_len(height,deg):
    if not deg == 0:
        return height*math.tan(math.radians(deg))
    else:
        return 0









 
 
************************************************/
